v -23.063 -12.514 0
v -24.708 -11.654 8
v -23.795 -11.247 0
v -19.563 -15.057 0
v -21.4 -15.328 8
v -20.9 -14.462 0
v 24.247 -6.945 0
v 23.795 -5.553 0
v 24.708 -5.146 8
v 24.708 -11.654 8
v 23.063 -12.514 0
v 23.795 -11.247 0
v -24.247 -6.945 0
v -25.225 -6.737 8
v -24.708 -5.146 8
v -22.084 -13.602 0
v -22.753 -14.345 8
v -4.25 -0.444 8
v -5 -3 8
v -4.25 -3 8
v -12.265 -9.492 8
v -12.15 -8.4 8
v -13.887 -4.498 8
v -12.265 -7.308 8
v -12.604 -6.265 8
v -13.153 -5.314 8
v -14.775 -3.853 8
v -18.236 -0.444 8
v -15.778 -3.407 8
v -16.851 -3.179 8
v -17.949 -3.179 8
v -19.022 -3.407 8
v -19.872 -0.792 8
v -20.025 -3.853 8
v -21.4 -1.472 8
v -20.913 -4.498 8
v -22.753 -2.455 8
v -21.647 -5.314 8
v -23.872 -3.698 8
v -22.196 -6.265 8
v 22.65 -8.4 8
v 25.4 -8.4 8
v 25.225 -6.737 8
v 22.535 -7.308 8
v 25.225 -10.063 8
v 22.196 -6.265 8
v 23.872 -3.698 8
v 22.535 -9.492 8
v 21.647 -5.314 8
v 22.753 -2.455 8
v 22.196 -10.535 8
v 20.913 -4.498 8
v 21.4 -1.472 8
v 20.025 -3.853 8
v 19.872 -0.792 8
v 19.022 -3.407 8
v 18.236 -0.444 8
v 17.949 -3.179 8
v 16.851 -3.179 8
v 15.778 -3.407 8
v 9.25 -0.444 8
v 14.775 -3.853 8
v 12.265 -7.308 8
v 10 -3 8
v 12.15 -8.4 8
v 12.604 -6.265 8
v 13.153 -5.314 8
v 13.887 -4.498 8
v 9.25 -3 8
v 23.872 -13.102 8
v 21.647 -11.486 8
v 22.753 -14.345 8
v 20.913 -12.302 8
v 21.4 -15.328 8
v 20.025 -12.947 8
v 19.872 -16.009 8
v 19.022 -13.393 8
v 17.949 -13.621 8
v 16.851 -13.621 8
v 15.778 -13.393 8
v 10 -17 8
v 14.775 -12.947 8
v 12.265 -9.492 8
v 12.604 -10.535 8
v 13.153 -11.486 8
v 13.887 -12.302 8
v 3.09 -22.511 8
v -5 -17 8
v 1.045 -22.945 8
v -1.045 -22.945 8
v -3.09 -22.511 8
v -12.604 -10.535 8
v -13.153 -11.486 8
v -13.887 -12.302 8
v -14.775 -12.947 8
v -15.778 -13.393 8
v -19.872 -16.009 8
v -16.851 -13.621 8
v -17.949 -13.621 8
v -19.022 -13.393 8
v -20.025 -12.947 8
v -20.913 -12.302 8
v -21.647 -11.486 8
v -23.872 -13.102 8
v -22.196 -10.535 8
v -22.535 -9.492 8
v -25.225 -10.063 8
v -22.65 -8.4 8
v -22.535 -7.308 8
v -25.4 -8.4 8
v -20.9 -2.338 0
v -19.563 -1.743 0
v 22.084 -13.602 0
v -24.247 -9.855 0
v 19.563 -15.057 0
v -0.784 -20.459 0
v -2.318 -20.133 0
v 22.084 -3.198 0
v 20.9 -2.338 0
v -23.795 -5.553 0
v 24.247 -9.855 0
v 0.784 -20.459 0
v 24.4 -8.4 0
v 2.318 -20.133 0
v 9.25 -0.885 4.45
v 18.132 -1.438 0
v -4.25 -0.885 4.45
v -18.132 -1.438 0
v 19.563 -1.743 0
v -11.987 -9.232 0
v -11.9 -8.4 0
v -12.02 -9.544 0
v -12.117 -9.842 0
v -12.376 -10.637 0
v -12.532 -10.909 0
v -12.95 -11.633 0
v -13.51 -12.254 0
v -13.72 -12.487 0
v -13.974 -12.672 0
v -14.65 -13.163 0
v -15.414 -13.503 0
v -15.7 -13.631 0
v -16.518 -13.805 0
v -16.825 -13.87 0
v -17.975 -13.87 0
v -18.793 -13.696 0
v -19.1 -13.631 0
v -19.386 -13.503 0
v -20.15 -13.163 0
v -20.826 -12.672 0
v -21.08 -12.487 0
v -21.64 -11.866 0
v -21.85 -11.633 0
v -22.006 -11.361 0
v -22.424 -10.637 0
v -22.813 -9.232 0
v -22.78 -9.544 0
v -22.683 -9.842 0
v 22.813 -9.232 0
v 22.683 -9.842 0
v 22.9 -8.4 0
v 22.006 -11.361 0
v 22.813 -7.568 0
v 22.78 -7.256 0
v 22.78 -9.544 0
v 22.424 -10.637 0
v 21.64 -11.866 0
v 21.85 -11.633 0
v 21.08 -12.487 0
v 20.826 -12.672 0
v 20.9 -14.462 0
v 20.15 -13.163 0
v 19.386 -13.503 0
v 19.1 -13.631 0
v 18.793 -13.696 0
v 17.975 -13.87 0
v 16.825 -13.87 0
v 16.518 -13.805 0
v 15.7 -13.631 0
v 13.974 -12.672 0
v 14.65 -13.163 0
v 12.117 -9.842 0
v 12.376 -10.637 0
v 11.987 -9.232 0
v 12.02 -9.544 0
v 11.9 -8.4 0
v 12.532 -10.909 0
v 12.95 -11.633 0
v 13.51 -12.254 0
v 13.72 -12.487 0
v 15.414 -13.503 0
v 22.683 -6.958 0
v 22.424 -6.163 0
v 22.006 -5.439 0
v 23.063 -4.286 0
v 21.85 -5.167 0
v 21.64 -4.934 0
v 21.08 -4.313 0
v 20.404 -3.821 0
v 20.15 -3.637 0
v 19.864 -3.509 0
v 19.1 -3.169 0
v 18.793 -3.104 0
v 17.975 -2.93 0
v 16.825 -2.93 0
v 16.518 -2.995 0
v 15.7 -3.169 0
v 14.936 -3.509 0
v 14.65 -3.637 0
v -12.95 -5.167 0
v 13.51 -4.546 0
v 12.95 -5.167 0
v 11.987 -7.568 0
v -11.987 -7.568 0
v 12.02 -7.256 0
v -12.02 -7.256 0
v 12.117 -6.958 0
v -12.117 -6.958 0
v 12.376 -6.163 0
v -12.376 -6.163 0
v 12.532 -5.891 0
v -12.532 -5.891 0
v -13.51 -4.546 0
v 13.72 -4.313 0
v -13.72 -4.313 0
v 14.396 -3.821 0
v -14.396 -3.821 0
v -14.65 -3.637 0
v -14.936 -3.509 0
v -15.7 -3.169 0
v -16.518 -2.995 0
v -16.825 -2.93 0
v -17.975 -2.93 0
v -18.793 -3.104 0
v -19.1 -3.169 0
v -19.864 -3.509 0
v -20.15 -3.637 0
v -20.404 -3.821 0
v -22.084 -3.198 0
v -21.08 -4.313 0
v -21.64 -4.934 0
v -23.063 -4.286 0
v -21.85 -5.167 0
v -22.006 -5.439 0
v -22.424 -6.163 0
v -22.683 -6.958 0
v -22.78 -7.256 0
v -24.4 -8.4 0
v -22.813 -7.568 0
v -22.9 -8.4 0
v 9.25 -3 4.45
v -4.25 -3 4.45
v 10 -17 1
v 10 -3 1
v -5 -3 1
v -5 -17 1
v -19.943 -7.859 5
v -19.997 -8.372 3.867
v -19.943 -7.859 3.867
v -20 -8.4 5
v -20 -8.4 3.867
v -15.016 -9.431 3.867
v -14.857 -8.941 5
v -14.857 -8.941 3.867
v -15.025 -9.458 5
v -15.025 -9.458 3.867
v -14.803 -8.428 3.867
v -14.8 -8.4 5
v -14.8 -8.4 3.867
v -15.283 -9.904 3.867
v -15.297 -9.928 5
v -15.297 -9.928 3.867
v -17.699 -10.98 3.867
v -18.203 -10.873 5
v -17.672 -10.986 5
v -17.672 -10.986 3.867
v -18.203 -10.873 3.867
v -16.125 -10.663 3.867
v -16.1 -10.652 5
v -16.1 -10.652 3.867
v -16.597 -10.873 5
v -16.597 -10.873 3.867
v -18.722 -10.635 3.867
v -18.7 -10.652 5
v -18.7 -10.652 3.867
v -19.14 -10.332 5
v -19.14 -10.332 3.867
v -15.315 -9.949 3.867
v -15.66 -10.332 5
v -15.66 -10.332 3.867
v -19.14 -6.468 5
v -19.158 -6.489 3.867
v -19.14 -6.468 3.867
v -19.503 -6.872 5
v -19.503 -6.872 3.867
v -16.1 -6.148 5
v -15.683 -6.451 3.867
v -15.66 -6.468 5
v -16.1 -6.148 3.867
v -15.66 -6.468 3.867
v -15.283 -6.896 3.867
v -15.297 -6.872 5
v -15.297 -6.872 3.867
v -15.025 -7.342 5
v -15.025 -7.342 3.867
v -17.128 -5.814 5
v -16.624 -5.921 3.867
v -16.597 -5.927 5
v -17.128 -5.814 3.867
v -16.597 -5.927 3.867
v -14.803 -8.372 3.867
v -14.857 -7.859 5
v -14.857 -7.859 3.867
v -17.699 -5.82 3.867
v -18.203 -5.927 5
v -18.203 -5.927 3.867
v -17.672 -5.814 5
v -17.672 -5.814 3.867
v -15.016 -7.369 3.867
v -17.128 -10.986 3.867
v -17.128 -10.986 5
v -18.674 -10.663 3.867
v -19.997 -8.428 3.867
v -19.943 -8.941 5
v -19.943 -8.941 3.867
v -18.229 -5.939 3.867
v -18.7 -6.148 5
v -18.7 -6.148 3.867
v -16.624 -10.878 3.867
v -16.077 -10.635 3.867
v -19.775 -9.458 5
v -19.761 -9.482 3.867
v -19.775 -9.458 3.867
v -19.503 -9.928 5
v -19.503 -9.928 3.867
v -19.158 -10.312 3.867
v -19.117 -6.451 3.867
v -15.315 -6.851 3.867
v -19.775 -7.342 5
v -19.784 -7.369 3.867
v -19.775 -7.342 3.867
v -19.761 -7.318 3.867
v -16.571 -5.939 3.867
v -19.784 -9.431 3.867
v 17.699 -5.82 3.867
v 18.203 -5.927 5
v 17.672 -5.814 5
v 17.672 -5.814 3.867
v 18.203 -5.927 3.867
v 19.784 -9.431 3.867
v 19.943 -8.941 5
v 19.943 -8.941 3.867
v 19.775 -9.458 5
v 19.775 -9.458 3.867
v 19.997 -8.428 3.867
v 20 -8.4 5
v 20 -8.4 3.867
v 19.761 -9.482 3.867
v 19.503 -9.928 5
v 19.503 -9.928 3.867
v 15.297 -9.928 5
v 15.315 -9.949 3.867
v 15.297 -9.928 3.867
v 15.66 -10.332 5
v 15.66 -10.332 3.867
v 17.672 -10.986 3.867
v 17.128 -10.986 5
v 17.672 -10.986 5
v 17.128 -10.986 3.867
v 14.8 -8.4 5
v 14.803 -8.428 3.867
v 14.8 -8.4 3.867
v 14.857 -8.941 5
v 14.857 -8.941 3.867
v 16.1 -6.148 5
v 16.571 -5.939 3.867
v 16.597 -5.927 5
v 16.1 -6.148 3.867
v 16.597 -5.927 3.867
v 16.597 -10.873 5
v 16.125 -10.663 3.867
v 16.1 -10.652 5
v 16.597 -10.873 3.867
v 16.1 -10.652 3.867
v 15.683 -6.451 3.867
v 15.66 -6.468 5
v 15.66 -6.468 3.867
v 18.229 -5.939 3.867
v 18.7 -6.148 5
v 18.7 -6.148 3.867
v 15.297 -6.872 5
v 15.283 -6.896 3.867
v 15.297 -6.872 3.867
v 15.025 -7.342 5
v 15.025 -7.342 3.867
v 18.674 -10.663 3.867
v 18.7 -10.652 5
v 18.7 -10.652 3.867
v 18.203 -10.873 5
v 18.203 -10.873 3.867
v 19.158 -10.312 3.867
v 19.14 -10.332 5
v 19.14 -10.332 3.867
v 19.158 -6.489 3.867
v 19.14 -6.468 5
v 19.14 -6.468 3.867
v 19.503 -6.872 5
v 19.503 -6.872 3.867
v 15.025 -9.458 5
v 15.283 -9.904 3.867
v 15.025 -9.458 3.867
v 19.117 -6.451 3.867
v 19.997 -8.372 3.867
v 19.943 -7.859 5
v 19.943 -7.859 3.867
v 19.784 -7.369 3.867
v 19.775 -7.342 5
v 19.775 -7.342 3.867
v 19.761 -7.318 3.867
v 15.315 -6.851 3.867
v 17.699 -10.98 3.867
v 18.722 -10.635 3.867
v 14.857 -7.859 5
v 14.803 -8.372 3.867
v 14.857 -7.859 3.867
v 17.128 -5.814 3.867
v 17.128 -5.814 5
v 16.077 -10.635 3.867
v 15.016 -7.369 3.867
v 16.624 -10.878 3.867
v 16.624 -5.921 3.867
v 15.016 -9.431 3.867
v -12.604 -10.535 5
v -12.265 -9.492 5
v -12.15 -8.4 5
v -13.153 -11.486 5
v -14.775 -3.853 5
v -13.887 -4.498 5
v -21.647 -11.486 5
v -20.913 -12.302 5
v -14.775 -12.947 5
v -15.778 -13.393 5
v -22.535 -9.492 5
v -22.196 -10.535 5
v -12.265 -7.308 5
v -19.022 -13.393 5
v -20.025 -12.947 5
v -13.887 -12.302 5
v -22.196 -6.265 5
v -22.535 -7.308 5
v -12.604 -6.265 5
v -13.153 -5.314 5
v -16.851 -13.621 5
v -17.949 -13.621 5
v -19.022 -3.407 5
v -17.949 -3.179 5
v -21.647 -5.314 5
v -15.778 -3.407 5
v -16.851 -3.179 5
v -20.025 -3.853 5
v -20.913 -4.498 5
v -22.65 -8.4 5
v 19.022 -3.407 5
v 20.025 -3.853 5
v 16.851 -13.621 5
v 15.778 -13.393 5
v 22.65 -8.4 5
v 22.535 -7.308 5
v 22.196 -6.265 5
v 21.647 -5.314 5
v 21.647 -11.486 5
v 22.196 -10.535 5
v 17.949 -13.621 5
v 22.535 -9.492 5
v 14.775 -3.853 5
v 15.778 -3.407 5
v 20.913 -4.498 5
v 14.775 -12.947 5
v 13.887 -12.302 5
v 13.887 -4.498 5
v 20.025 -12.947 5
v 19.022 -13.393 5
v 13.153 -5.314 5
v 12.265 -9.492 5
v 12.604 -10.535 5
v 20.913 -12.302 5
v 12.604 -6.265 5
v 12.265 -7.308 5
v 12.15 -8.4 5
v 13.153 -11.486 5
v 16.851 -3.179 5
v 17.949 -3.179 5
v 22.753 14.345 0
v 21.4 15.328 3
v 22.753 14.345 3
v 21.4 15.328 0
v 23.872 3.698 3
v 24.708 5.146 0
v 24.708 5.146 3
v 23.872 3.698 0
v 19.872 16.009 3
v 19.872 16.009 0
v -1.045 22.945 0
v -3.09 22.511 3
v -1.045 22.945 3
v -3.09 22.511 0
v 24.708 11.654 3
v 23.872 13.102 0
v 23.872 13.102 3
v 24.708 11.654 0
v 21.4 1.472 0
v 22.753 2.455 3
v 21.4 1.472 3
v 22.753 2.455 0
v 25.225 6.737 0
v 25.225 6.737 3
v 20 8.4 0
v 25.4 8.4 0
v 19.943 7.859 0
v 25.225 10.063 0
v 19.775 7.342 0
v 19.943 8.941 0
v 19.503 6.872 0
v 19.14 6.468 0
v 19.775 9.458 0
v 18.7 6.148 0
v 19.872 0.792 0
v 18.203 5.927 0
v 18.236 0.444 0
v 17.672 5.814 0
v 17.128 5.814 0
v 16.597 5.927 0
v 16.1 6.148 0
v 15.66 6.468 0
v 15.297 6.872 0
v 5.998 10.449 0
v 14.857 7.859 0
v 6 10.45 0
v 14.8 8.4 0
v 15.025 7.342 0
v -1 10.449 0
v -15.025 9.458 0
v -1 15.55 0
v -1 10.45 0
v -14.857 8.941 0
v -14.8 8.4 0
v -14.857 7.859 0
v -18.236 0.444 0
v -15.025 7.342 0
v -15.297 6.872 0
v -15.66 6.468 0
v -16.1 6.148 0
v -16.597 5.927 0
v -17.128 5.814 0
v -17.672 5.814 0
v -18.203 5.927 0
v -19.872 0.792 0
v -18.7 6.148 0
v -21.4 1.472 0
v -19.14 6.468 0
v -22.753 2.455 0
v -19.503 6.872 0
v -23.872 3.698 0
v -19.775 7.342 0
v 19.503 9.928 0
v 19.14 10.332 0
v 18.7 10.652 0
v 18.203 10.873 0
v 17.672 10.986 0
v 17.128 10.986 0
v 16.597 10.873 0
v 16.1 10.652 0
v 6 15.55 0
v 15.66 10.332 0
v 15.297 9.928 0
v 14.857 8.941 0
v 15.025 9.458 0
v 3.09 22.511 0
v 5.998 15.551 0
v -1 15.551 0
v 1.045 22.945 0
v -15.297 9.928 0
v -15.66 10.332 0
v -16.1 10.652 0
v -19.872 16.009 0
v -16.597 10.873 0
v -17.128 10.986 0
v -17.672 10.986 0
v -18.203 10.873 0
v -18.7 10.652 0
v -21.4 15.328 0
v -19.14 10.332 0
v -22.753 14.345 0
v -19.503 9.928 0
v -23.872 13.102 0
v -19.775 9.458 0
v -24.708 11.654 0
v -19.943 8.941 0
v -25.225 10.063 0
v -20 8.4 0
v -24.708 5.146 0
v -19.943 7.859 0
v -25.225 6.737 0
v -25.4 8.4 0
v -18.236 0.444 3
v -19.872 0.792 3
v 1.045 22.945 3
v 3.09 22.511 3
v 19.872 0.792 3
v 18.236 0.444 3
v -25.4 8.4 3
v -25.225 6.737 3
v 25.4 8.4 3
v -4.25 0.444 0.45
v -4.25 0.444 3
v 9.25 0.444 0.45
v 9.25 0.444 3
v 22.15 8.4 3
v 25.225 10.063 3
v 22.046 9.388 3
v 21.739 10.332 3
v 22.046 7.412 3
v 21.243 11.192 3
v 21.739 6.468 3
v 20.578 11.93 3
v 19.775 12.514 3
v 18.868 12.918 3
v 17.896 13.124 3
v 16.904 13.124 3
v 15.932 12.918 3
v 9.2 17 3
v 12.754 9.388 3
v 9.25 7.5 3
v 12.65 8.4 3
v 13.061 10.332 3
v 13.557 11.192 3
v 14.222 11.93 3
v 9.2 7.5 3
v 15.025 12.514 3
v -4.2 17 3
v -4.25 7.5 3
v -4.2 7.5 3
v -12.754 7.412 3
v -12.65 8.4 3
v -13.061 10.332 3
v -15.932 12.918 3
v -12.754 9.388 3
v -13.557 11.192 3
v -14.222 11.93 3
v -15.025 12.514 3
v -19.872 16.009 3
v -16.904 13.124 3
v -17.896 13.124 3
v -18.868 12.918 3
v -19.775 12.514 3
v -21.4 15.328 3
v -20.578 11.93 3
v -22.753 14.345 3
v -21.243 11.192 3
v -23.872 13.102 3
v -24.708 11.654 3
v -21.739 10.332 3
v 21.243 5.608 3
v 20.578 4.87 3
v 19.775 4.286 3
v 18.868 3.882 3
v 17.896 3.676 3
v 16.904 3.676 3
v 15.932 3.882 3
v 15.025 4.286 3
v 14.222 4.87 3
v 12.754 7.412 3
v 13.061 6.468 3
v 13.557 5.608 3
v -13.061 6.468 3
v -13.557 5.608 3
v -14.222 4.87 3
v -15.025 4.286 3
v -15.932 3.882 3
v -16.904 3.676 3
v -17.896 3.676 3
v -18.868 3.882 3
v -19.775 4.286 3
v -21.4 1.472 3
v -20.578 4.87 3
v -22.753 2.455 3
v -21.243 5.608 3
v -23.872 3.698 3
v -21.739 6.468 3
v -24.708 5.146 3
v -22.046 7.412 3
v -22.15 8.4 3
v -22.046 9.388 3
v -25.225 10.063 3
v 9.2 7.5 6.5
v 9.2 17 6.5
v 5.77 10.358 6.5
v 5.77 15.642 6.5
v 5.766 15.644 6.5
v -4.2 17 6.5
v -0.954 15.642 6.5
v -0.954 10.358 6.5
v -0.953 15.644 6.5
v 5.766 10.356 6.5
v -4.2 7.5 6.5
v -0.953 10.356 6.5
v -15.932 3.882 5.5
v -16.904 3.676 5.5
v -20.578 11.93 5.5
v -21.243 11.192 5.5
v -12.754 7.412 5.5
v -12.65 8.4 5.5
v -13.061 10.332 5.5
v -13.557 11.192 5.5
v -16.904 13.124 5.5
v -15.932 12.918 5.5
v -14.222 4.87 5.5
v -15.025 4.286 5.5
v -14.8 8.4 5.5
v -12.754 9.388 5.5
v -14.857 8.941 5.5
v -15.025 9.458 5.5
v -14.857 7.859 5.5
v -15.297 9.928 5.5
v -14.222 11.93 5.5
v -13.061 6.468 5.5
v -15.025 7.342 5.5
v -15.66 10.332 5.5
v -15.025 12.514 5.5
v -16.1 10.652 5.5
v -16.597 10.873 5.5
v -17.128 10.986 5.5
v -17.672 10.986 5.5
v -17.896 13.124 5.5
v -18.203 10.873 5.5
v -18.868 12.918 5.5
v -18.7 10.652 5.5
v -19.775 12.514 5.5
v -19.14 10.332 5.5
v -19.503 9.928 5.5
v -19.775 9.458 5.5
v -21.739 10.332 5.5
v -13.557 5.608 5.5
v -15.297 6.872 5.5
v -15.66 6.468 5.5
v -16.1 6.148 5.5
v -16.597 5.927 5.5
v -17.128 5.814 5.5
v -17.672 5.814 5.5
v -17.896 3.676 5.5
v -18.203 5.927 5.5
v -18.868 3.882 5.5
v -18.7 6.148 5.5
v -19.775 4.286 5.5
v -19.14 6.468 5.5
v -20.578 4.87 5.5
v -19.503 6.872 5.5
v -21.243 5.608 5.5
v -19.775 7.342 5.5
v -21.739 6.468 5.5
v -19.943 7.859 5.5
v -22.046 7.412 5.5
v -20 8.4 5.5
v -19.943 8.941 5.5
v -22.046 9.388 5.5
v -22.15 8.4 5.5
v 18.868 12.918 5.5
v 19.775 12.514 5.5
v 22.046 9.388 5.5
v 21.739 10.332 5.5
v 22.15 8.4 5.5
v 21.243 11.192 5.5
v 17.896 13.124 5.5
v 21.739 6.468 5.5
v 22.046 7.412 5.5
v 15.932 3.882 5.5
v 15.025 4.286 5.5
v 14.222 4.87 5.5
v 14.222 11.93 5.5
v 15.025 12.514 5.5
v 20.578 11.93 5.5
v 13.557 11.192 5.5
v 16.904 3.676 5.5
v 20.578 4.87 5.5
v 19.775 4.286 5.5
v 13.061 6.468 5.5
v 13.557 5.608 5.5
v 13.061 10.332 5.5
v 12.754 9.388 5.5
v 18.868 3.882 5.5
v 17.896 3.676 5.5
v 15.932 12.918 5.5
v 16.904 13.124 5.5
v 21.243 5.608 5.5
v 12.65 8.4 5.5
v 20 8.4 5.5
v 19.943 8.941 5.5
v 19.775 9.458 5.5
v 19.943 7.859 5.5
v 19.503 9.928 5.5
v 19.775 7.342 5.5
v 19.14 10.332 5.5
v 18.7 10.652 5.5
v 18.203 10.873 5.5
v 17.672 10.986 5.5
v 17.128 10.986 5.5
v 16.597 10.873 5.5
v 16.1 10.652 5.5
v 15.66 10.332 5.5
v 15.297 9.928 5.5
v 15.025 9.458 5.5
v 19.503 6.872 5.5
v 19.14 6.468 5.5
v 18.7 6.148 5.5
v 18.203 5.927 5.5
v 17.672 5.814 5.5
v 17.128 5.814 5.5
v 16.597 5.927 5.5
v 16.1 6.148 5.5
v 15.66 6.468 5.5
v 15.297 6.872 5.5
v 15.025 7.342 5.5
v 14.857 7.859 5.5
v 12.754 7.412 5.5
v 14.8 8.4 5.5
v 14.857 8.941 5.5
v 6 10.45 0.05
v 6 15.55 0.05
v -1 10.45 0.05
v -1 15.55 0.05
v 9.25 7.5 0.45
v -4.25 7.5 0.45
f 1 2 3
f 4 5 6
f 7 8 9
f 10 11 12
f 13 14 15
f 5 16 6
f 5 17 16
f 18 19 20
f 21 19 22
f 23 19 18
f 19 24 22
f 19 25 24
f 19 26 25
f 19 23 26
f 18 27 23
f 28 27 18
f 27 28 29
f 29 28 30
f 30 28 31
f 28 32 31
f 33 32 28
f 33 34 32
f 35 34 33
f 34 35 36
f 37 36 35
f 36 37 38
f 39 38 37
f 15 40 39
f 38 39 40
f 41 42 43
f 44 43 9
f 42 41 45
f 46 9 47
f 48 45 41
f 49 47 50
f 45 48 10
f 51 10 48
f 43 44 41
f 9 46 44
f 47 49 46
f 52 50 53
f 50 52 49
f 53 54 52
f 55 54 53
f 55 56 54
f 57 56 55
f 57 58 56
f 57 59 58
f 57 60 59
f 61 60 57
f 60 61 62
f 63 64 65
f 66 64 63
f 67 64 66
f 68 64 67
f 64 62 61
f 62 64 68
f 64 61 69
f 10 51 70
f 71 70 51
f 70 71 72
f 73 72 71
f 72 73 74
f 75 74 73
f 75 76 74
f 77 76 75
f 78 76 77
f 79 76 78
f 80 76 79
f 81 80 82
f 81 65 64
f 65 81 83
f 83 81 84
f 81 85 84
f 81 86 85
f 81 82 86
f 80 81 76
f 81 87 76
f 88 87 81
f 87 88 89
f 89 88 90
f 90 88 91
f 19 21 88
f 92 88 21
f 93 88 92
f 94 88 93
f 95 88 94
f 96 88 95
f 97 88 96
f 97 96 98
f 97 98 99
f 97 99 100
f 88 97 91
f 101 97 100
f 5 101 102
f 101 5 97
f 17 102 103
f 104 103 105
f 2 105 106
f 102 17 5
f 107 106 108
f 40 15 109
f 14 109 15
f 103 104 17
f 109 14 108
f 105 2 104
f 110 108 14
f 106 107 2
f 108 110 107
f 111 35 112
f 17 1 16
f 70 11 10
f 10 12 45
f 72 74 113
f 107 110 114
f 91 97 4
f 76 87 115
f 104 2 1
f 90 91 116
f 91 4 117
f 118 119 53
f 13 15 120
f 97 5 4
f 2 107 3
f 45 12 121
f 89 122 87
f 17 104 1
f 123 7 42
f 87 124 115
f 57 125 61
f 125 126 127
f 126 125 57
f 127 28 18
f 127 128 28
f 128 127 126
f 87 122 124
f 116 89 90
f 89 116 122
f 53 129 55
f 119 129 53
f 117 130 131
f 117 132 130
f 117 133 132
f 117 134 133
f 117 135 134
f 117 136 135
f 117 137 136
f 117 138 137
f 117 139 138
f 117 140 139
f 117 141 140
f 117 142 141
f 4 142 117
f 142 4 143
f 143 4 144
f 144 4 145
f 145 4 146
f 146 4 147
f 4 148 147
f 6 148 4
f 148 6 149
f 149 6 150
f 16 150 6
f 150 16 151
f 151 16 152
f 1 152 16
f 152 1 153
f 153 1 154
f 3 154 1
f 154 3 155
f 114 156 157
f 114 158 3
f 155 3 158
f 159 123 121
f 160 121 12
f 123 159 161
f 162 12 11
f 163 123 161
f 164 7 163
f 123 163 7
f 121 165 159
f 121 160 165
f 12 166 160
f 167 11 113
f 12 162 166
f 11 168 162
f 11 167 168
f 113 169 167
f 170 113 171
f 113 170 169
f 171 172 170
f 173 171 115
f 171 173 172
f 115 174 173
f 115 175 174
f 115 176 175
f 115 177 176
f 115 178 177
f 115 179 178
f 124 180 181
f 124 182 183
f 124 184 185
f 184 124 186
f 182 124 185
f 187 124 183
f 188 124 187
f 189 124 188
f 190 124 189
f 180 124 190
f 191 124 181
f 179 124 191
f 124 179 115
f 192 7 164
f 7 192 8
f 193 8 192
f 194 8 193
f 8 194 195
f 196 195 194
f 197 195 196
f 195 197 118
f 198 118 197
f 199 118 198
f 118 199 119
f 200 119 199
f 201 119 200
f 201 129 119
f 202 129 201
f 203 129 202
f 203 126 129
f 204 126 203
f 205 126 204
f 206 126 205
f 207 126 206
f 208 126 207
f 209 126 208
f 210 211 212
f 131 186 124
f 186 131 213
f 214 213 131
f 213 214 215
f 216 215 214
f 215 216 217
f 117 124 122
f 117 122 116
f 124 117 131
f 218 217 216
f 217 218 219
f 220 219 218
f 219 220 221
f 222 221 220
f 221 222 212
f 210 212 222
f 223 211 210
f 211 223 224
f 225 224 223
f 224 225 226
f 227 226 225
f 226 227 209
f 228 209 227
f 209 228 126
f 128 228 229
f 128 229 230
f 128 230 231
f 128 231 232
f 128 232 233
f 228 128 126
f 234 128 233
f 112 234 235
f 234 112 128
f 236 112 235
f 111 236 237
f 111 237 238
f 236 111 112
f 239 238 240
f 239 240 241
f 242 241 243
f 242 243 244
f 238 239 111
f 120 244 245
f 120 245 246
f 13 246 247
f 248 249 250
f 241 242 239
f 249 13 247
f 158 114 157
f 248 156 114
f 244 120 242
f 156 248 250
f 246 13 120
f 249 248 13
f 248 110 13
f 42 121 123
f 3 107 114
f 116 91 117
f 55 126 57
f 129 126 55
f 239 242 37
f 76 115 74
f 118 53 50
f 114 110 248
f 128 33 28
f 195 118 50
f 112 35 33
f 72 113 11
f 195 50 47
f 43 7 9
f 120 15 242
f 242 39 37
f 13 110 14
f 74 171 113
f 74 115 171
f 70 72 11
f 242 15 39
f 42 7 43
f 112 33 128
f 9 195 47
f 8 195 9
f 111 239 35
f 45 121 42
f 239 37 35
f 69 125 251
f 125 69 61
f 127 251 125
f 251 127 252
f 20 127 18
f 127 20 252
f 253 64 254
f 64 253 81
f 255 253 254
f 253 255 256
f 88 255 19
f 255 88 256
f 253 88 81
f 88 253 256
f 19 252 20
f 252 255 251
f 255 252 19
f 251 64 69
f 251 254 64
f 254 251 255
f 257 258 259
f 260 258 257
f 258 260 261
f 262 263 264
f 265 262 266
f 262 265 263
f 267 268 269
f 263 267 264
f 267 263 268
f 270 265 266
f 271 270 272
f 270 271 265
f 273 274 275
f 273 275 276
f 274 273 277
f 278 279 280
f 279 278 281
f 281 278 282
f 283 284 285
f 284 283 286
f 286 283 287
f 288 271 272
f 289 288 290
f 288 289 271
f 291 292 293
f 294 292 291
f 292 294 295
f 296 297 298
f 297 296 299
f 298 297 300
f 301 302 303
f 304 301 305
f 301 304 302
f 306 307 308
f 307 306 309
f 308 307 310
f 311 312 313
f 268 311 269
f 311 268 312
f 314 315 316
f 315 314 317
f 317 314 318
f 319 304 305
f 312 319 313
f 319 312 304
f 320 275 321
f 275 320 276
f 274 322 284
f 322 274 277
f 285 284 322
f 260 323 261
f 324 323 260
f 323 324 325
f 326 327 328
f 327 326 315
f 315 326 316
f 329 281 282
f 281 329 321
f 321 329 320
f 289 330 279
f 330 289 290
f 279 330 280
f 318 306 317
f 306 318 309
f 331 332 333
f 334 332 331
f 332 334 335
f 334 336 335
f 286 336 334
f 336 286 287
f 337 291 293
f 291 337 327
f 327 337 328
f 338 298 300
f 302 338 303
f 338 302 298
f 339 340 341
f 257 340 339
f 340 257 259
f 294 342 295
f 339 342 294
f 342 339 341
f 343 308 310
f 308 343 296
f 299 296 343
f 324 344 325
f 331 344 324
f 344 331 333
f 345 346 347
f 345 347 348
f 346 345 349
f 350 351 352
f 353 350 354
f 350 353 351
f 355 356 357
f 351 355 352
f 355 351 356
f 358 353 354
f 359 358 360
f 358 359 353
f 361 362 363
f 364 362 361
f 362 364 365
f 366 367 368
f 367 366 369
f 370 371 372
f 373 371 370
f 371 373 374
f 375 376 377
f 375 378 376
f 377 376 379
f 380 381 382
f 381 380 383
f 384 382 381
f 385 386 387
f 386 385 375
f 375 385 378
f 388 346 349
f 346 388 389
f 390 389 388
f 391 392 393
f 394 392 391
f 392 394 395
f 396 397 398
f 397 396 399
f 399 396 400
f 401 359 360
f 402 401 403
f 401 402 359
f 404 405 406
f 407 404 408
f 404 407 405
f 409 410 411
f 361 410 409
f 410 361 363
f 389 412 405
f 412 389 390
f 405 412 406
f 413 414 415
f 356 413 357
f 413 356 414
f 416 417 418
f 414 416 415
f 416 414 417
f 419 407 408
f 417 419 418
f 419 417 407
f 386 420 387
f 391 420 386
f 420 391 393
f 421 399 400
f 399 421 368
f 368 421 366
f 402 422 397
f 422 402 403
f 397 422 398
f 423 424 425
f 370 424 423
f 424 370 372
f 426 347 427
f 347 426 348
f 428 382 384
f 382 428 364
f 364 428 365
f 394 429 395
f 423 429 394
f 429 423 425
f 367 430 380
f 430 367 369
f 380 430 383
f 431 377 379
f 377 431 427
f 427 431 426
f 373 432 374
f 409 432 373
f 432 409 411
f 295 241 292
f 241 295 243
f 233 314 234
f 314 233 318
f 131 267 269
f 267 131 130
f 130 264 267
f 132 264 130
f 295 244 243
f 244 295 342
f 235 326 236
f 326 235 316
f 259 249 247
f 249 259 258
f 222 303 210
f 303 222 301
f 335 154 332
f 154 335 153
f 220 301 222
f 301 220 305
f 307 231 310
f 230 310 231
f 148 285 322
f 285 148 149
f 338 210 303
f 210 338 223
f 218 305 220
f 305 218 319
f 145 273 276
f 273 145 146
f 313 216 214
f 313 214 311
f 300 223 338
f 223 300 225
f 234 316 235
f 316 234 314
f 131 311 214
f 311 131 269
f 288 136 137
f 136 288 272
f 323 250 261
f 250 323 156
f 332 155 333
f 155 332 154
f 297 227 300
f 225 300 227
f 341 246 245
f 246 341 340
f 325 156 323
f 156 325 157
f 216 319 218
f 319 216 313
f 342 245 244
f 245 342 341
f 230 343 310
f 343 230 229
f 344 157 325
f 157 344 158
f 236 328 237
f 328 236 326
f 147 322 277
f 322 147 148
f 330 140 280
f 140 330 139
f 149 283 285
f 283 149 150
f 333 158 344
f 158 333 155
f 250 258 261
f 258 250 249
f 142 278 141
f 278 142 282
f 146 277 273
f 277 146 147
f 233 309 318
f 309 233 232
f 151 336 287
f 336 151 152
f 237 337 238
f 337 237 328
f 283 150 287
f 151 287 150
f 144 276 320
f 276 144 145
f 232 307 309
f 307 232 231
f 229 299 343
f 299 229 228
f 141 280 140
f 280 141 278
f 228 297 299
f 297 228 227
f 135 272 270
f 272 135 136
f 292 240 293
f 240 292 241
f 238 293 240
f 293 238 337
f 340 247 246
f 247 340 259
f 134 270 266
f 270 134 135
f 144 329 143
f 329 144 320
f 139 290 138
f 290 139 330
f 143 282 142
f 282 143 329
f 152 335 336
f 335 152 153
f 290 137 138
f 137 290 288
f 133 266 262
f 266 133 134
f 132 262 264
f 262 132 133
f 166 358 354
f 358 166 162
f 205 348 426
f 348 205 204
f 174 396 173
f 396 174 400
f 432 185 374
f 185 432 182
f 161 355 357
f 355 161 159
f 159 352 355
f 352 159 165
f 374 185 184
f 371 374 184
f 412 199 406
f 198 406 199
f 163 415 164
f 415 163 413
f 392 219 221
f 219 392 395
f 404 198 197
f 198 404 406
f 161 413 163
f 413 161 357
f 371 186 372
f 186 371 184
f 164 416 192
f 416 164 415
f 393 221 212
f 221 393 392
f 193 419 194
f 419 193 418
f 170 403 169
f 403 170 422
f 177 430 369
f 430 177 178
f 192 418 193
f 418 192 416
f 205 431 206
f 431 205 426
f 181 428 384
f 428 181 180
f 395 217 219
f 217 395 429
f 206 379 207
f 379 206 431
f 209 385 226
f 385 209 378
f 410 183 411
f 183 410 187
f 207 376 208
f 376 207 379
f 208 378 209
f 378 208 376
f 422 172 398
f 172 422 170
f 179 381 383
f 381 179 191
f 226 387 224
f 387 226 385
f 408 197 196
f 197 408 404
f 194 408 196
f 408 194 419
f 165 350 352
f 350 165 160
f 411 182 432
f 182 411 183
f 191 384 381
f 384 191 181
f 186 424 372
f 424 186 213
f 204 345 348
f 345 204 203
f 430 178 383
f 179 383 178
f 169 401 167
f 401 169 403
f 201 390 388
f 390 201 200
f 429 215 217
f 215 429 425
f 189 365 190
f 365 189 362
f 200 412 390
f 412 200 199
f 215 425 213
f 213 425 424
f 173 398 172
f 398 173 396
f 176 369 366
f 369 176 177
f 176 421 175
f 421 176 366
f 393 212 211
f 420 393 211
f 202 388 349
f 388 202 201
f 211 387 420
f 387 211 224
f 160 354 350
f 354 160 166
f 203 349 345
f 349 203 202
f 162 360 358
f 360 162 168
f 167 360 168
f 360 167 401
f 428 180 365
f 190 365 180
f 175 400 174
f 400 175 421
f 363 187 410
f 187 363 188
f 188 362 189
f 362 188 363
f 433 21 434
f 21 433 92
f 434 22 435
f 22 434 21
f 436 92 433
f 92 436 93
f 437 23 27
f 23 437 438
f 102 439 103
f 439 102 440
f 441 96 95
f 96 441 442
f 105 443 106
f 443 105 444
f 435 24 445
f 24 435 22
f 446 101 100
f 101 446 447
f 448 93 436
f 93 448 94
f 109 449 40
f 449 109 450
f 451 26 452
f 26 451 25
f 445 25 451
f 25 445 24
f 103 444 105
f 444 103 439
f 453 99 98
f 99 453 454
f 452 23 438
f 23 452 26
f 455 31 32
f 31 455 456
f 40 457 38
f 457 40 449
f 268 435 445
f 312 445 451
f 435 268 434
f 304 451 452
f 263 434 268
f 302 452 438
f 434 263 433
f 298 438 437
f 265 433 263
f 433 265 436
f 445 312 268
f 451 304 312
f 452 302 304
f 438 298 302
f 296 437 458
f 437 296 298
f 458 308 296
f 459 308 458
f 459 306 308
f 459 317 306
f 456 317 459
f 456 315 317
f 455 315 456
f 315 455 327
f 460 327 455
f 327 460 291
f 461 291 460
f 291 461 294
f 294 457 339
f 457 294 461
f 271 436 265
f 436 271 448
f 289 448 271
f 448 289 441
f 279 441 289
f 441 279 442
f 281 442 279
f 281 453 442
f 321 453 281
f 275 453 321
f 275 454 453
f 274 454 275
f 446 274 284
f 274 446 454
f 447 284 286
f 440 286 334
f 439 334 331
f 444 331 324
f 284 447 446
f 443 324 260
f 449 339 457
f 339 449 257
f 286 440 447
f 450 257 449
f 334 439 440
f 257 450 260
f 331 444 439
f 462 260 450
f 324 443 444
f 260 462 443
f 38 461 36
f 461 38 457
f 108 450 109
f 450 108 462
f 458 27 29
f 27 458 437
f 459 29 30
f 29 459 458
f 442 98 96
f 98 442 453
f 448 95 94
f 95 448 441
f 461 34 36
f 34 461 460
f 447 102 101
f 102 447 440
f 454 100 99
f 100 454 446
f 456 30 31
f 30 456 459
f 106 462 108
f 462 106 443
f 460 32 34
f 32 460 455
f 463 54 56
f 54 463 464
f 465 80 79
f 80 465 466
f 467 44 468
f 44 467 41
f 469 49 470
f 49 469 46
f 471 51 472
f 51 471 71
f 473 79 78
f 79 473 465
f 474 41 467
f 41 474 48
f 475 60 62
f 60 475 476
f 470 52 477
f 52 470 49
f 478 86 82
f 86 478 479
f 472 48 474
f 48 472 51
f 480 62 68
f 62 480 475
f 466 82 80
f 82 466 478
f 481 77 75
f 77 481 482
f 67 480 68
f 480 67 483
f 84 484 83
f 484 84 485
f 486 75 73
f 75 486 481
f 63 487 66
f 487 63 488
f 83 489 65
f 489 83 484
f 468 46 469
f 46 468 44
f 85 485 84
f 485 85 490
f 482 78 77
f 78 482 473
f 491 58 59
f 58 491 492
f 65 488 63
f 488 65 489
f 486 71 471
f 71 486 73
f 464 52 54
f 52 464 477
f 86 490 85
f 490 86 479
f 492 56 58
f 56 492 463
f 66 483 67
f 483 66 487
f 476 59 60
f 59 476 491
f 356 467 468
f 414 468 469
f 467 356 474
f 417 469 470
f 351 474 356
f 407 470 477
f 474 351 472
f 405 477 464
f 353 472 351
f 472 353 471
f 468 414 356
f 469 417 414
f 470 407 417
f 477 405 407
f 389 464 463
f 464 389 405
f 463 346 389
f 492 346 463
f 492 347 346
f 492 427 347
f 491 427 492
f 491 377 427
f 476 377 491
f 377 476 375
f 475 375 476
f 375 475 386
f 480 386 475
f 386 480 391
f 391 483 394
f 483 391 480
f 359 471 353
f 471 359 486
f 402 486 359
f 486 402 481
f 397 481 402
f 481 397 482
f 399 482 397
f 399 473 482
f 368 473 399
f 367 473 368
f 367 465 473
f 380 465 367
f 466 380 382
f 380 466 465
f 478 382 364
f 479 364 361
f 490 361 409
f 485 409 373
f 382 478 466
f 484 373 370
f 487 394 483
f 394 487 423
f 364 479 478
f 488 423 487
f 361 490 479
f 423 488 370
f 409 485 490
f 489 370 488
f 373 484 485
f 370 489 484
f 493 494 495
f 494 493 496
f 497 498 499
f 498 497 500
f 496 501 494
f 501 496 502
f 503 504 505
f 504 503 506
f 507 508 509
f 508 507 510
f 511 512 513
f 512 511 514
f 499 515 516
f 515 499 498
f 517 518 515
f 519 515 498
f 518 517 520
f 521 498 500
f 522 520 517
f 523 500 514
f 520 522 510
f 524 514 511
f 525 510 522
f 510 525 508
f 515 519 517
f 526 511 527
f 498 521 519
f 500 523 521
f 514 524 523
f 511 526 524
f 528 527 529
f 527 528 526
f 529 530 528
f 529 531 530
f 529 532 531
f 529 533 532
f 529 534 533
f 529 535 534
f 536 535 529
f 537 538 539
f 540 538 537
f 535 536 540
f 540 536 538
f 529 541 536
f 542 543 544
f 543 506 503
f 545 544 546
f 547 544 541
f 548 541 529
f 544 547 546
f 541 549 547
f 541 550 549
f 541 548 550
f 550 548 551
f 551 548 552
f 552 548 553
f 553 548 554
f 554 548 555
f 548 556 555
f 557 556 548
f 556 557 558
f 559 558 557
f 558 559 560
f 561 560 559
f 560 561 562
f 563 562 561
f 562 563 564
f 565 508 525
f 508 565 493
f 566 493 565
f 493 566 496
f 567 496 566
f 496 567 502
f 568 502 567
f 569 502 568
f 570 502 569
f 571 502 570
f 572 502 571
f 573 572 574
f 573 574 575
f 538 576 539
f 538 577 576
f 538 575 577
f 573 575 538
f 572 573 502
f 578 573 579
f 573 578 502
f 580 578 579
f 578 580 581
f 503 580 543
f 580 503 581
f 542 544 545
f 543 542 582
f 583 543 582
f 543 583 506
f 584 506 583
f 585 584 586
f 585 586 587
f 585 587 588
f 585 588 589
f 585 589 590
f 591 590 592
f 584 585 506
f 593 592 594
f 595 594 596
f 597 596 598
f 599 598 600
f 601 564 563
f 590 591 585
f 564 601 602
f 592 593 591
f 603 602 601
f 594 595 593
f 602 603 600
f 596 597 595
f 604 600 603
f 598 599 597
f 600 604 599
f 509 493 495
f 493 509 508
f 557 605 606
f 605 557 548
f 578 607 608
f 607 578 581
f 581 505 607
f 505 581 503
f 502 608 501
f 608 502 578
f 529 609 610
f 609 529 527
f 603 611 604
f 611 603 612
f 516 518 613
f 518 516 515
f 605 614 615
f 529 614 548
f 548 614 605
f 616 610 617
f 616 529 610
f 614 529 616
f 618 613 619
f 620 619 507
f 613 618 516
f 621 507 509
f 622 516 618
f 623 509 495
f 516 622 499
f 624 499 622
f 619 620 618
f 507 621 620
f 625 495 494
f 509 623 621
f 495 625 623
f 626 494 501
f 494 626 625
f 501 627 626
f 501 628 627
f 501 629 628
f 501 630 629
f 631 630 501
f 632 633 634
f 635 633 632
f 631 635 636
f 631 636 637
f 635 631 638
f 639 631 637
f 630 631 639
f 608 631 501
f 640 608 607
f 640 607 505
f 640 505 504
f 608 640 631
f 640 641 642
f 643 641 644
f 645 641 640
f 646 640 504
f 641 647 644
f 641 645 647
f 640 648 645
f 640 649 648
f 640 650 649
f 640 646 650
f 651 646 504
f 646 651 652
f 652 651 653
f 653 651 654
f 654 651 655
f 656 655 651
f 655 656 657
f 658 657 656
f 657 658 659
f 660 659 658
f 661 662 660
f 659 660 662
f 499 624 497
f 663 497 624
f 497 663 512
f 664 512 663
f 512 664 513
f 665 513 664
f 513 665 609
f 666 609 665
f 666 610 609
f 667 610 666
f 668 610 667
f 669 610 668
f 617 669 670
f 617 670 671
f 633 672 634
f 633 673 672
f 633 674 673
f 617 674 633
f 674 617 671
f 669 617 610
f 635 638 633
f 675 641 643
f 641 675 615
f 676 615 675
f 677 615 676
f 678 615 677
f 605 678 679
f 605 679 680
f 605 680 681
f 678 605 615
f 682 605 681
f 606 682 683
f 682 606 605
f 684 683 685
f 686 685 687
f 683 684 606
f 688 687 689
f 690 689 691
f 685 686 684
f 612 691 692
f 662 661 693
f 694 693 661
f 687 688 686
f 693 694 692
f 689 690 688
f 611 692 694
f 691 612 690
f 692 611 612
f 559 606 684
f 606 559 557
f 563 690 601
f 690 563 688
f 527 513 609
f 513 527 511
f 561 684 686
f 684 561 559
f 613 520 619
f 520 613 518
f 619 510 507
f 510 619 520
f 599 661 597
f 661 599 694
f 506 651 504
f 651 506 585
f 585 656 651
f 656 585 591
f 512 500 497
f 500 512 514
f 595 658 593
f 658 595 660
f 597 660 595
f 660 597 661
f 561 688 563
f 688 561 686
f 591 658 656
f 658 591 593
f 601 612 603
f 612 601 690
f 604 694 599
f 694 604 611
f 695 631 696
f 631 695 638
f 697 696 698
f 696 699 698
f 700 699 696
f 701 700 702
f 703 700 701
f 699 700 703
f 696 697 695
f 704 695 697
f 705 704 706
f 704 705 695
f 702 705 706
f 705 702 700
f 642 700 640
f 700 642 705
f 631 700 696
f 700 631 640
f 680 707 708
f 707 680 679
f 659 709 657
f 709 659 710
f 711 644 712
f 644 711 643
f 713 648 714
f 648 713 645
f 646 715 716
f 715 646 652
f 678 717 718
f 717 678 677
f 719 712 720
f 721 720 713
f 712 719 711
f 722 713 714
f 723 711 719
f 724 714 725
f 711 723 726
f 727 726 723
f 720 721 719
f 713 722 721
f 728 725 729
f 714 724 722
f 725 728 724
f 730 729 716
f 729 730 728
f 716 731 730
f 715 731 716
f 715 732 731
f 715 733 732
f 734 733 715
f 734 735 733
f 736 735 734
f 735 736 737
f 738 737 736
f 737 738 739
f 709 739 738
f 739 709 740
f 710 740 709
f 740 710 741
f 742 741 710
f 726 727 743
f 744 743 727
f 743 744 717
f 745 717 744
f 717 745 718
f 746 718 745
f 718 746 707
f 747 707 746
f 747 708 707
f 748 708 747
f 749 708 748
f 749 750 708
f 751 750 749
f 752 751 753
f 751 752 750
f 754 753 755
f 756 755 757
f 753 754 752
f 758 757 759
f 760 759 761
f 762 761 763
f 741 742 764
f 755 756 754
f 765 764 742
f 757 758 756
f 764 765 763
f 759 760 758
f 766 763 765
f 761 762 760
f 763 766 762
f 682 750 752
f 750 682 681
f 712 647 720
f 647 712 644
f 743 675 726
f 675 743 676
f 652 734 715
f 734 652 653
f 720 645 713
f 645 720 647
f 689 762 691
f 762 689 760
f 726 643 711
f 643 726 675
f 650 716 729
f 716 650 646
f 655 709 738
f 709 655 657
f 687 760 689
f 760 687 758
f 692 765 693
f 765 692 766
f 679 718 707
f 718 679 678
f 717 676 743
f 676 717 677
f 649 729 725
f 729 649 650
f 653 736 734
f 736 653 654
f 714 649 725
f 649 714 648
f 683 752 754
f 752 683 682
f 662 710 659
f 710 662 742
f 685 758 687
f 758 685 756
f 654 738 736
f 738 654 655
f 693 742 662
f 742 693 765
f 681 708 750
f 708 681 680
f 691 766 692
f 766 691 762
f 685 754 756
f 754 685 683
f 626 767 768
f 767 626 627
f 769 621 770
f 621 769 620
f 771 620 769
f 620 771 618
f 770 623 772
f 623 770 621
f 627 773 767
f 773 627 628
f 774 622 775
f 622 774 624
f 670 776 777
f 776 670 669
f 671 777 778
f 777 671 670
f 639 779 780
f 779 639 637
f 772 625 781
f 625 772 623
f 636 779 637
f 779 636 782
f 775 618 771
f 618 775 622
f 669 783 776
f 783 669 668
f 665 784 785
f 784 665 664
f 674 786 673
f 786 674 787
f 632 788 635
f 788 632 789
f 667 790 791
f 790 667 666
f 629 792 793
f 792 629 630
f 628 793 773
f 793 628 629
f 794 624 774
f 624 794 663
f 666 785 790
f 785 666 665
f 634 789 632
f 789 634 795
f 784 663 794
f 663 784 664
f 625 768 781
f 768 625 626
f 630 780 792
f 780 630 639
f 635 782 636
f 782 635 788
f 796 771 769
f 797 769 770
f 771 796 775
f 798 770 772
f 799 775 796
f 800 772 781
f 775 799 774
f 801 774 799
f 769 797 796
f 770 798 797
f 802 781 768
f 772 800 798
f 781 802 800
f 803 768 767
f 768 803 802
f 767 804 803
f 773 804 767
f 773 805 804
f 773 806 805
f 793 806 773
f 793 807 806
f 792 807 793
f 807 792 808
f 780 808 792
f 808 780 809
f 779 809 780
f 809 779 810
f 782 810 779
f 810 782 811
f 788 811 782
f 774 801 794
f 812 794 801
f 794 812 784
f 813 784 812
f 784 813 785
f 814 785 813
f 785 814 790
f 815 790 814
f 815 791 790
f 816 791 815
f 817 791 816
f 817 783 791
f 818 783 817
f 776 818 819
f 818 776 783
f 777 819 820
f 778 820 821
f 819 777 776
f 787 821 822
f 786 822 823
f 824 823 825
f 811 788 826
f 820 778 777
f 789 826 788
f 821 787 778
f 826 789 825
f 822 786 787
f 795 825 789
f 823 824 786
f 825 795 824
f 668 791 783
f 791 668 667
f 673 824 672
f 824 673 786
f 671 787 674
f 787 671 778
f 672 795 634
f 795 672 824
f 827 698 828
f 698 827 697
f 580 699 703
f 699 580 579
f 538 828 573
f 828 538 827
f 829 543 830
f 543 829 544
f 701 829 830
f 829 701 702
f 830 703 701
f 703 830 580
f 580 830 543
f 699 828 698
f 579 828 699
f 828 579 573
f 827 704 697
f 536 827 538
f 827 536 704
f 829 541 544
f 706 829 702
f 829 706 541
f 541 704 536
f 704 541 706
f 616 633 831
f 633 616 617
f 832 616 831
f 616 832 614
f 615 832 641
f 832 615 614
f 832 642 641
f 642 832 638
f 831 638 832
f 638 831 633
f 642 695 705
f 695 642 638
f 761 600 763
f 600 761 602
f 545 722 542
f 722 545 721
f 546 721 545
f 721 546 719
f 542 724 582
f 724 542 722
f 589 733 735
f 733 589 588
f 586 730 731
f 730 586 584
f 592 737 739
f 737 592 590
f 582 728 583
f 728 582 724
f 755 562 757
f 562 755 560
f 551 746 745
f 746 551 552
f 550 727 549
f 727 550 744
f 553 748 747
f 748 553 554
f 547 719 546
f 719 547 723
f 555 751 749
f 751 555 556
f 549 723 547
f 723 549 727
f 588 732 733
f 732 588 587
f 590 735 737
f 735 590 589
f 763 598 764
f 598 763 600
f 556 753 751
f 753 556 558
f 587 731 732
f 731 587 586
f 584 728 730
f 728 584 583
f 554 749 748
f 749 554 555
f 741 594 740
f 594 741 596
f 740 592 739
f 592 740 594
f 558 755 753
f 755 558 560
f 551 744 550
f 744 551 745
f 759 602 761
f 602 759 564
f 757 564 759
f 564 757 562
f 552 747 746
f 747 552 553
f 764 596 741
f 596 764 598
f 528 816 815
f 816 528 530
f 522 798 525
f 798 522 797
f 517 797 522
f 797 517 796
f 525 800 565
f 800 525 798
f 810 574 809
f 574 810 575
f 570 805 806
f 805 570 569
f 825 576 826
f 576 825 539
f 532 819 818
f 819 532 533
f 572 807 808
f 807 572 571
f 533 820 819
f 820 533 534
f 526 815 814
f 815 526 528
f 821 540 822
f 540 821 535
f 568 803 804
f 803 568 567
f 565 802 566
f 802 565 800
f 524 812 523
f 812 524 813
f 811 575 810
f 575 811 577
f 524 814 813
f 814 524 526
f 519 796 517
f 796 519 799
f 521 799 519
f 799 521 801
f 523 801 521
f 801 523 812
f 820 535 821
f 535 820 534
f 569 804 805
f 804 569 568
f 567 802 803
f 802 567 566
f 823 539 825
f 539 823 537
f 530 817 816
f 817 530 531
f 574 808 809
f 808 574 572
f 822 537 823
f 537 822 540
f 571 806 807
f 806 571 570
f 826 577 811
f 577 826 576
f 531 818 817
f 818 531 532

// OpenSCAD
/* Designed by A.J. v.d. Werken, Oct 2021       */
/* Optial sensor RPR220 - find it on AliExpress */
/* Fits on a Sensus 620 Watermeter (Vitens)     */
/* Works with WATERLEZER (ESPHOME)              */

$fn=30;

module sensus620mount_top()
{
    // Solid
    difference()
    {
        union()
        {
            hull()
            {
                translate([-17.4,-4.6,0]) cylinder(d2=14, d1=16, h=8);
                translate([17.4,-4.6,0]) cylinder(d2=14, d1=16, h=8);
                translate([0,0,0]) cylinder(d1=20, d2=15, h=8);
              //  translate([2.5,-3,0]) cube([18,14,8],center=true);
            }
       
        }
        // Holes
        translate([2.5,-9.5,1.5]) cube([13.5,8,4.1], center=true);
        translate([2.5,-3,3]) cube([15,14,8],center=true);
        translate([-17.4,-4.6,-0.5]) cylinder(d=5.2,h=10);
        translate([17.4,-4.6,-0.5]) cylinder(d=5.2,h=10);
        
        translate([-17.4,-4.6,4]) cylinder(d1=5, d2=20,h=10);
        translate([17.4,-4.6,4]) cylinder(d1=5, d2=20,h=10);
        
        translate([-17.4,-4.6,-7]) cylinder(d=10.5,h=10);
        translate([17.4,-4.6,-7]) cylinder(d=10.5,h=10);
        
    }
}

module sensus620mount_bottom()
{
    difference()
    {
        // Solid
        union()
        {
            hull()
            {
                translate([-17.4,-4.6,0]) cylinder(d=16,h=3);
                translate([17.4,-4.6,0]) cylinder(d=16,h=3);
                translate([0,0,0]) cylinder(d=20,h=3);
            }
      
            translate([2.5,-1,3.5]) cube([13.4,10,6],center=true);

            translate([-17.4,-4.6,3]) cylinder(d=9.5,h=2.5);
            translate([17.4,-4.6,3]) cylinder(d=9.5,,h=2.5);
            }
        // Holes
        hull()
        {
            translate([2.5,0,0]) cube([7,5.1,0.1], center=true);      
            translate([2.4,0,7]) cube([6.7,5.3,0.1], center=true);
        }
        translate([2.5,-9.5,3.5]) cube([13.5,8,6.1], center=true);
        
        translate([-17.4,-4.6,-0.5]) cylinder(d=5.2,h=10);
        translate([17.4,-4.6,-0.5]) cylinder(d=5.2,h=10);
    }
 
}

translate([0,-13,8]) scale([1,-1,-1]) sensus620mount_top();
translate([0,13,0]) sensus620mount_bottom();
